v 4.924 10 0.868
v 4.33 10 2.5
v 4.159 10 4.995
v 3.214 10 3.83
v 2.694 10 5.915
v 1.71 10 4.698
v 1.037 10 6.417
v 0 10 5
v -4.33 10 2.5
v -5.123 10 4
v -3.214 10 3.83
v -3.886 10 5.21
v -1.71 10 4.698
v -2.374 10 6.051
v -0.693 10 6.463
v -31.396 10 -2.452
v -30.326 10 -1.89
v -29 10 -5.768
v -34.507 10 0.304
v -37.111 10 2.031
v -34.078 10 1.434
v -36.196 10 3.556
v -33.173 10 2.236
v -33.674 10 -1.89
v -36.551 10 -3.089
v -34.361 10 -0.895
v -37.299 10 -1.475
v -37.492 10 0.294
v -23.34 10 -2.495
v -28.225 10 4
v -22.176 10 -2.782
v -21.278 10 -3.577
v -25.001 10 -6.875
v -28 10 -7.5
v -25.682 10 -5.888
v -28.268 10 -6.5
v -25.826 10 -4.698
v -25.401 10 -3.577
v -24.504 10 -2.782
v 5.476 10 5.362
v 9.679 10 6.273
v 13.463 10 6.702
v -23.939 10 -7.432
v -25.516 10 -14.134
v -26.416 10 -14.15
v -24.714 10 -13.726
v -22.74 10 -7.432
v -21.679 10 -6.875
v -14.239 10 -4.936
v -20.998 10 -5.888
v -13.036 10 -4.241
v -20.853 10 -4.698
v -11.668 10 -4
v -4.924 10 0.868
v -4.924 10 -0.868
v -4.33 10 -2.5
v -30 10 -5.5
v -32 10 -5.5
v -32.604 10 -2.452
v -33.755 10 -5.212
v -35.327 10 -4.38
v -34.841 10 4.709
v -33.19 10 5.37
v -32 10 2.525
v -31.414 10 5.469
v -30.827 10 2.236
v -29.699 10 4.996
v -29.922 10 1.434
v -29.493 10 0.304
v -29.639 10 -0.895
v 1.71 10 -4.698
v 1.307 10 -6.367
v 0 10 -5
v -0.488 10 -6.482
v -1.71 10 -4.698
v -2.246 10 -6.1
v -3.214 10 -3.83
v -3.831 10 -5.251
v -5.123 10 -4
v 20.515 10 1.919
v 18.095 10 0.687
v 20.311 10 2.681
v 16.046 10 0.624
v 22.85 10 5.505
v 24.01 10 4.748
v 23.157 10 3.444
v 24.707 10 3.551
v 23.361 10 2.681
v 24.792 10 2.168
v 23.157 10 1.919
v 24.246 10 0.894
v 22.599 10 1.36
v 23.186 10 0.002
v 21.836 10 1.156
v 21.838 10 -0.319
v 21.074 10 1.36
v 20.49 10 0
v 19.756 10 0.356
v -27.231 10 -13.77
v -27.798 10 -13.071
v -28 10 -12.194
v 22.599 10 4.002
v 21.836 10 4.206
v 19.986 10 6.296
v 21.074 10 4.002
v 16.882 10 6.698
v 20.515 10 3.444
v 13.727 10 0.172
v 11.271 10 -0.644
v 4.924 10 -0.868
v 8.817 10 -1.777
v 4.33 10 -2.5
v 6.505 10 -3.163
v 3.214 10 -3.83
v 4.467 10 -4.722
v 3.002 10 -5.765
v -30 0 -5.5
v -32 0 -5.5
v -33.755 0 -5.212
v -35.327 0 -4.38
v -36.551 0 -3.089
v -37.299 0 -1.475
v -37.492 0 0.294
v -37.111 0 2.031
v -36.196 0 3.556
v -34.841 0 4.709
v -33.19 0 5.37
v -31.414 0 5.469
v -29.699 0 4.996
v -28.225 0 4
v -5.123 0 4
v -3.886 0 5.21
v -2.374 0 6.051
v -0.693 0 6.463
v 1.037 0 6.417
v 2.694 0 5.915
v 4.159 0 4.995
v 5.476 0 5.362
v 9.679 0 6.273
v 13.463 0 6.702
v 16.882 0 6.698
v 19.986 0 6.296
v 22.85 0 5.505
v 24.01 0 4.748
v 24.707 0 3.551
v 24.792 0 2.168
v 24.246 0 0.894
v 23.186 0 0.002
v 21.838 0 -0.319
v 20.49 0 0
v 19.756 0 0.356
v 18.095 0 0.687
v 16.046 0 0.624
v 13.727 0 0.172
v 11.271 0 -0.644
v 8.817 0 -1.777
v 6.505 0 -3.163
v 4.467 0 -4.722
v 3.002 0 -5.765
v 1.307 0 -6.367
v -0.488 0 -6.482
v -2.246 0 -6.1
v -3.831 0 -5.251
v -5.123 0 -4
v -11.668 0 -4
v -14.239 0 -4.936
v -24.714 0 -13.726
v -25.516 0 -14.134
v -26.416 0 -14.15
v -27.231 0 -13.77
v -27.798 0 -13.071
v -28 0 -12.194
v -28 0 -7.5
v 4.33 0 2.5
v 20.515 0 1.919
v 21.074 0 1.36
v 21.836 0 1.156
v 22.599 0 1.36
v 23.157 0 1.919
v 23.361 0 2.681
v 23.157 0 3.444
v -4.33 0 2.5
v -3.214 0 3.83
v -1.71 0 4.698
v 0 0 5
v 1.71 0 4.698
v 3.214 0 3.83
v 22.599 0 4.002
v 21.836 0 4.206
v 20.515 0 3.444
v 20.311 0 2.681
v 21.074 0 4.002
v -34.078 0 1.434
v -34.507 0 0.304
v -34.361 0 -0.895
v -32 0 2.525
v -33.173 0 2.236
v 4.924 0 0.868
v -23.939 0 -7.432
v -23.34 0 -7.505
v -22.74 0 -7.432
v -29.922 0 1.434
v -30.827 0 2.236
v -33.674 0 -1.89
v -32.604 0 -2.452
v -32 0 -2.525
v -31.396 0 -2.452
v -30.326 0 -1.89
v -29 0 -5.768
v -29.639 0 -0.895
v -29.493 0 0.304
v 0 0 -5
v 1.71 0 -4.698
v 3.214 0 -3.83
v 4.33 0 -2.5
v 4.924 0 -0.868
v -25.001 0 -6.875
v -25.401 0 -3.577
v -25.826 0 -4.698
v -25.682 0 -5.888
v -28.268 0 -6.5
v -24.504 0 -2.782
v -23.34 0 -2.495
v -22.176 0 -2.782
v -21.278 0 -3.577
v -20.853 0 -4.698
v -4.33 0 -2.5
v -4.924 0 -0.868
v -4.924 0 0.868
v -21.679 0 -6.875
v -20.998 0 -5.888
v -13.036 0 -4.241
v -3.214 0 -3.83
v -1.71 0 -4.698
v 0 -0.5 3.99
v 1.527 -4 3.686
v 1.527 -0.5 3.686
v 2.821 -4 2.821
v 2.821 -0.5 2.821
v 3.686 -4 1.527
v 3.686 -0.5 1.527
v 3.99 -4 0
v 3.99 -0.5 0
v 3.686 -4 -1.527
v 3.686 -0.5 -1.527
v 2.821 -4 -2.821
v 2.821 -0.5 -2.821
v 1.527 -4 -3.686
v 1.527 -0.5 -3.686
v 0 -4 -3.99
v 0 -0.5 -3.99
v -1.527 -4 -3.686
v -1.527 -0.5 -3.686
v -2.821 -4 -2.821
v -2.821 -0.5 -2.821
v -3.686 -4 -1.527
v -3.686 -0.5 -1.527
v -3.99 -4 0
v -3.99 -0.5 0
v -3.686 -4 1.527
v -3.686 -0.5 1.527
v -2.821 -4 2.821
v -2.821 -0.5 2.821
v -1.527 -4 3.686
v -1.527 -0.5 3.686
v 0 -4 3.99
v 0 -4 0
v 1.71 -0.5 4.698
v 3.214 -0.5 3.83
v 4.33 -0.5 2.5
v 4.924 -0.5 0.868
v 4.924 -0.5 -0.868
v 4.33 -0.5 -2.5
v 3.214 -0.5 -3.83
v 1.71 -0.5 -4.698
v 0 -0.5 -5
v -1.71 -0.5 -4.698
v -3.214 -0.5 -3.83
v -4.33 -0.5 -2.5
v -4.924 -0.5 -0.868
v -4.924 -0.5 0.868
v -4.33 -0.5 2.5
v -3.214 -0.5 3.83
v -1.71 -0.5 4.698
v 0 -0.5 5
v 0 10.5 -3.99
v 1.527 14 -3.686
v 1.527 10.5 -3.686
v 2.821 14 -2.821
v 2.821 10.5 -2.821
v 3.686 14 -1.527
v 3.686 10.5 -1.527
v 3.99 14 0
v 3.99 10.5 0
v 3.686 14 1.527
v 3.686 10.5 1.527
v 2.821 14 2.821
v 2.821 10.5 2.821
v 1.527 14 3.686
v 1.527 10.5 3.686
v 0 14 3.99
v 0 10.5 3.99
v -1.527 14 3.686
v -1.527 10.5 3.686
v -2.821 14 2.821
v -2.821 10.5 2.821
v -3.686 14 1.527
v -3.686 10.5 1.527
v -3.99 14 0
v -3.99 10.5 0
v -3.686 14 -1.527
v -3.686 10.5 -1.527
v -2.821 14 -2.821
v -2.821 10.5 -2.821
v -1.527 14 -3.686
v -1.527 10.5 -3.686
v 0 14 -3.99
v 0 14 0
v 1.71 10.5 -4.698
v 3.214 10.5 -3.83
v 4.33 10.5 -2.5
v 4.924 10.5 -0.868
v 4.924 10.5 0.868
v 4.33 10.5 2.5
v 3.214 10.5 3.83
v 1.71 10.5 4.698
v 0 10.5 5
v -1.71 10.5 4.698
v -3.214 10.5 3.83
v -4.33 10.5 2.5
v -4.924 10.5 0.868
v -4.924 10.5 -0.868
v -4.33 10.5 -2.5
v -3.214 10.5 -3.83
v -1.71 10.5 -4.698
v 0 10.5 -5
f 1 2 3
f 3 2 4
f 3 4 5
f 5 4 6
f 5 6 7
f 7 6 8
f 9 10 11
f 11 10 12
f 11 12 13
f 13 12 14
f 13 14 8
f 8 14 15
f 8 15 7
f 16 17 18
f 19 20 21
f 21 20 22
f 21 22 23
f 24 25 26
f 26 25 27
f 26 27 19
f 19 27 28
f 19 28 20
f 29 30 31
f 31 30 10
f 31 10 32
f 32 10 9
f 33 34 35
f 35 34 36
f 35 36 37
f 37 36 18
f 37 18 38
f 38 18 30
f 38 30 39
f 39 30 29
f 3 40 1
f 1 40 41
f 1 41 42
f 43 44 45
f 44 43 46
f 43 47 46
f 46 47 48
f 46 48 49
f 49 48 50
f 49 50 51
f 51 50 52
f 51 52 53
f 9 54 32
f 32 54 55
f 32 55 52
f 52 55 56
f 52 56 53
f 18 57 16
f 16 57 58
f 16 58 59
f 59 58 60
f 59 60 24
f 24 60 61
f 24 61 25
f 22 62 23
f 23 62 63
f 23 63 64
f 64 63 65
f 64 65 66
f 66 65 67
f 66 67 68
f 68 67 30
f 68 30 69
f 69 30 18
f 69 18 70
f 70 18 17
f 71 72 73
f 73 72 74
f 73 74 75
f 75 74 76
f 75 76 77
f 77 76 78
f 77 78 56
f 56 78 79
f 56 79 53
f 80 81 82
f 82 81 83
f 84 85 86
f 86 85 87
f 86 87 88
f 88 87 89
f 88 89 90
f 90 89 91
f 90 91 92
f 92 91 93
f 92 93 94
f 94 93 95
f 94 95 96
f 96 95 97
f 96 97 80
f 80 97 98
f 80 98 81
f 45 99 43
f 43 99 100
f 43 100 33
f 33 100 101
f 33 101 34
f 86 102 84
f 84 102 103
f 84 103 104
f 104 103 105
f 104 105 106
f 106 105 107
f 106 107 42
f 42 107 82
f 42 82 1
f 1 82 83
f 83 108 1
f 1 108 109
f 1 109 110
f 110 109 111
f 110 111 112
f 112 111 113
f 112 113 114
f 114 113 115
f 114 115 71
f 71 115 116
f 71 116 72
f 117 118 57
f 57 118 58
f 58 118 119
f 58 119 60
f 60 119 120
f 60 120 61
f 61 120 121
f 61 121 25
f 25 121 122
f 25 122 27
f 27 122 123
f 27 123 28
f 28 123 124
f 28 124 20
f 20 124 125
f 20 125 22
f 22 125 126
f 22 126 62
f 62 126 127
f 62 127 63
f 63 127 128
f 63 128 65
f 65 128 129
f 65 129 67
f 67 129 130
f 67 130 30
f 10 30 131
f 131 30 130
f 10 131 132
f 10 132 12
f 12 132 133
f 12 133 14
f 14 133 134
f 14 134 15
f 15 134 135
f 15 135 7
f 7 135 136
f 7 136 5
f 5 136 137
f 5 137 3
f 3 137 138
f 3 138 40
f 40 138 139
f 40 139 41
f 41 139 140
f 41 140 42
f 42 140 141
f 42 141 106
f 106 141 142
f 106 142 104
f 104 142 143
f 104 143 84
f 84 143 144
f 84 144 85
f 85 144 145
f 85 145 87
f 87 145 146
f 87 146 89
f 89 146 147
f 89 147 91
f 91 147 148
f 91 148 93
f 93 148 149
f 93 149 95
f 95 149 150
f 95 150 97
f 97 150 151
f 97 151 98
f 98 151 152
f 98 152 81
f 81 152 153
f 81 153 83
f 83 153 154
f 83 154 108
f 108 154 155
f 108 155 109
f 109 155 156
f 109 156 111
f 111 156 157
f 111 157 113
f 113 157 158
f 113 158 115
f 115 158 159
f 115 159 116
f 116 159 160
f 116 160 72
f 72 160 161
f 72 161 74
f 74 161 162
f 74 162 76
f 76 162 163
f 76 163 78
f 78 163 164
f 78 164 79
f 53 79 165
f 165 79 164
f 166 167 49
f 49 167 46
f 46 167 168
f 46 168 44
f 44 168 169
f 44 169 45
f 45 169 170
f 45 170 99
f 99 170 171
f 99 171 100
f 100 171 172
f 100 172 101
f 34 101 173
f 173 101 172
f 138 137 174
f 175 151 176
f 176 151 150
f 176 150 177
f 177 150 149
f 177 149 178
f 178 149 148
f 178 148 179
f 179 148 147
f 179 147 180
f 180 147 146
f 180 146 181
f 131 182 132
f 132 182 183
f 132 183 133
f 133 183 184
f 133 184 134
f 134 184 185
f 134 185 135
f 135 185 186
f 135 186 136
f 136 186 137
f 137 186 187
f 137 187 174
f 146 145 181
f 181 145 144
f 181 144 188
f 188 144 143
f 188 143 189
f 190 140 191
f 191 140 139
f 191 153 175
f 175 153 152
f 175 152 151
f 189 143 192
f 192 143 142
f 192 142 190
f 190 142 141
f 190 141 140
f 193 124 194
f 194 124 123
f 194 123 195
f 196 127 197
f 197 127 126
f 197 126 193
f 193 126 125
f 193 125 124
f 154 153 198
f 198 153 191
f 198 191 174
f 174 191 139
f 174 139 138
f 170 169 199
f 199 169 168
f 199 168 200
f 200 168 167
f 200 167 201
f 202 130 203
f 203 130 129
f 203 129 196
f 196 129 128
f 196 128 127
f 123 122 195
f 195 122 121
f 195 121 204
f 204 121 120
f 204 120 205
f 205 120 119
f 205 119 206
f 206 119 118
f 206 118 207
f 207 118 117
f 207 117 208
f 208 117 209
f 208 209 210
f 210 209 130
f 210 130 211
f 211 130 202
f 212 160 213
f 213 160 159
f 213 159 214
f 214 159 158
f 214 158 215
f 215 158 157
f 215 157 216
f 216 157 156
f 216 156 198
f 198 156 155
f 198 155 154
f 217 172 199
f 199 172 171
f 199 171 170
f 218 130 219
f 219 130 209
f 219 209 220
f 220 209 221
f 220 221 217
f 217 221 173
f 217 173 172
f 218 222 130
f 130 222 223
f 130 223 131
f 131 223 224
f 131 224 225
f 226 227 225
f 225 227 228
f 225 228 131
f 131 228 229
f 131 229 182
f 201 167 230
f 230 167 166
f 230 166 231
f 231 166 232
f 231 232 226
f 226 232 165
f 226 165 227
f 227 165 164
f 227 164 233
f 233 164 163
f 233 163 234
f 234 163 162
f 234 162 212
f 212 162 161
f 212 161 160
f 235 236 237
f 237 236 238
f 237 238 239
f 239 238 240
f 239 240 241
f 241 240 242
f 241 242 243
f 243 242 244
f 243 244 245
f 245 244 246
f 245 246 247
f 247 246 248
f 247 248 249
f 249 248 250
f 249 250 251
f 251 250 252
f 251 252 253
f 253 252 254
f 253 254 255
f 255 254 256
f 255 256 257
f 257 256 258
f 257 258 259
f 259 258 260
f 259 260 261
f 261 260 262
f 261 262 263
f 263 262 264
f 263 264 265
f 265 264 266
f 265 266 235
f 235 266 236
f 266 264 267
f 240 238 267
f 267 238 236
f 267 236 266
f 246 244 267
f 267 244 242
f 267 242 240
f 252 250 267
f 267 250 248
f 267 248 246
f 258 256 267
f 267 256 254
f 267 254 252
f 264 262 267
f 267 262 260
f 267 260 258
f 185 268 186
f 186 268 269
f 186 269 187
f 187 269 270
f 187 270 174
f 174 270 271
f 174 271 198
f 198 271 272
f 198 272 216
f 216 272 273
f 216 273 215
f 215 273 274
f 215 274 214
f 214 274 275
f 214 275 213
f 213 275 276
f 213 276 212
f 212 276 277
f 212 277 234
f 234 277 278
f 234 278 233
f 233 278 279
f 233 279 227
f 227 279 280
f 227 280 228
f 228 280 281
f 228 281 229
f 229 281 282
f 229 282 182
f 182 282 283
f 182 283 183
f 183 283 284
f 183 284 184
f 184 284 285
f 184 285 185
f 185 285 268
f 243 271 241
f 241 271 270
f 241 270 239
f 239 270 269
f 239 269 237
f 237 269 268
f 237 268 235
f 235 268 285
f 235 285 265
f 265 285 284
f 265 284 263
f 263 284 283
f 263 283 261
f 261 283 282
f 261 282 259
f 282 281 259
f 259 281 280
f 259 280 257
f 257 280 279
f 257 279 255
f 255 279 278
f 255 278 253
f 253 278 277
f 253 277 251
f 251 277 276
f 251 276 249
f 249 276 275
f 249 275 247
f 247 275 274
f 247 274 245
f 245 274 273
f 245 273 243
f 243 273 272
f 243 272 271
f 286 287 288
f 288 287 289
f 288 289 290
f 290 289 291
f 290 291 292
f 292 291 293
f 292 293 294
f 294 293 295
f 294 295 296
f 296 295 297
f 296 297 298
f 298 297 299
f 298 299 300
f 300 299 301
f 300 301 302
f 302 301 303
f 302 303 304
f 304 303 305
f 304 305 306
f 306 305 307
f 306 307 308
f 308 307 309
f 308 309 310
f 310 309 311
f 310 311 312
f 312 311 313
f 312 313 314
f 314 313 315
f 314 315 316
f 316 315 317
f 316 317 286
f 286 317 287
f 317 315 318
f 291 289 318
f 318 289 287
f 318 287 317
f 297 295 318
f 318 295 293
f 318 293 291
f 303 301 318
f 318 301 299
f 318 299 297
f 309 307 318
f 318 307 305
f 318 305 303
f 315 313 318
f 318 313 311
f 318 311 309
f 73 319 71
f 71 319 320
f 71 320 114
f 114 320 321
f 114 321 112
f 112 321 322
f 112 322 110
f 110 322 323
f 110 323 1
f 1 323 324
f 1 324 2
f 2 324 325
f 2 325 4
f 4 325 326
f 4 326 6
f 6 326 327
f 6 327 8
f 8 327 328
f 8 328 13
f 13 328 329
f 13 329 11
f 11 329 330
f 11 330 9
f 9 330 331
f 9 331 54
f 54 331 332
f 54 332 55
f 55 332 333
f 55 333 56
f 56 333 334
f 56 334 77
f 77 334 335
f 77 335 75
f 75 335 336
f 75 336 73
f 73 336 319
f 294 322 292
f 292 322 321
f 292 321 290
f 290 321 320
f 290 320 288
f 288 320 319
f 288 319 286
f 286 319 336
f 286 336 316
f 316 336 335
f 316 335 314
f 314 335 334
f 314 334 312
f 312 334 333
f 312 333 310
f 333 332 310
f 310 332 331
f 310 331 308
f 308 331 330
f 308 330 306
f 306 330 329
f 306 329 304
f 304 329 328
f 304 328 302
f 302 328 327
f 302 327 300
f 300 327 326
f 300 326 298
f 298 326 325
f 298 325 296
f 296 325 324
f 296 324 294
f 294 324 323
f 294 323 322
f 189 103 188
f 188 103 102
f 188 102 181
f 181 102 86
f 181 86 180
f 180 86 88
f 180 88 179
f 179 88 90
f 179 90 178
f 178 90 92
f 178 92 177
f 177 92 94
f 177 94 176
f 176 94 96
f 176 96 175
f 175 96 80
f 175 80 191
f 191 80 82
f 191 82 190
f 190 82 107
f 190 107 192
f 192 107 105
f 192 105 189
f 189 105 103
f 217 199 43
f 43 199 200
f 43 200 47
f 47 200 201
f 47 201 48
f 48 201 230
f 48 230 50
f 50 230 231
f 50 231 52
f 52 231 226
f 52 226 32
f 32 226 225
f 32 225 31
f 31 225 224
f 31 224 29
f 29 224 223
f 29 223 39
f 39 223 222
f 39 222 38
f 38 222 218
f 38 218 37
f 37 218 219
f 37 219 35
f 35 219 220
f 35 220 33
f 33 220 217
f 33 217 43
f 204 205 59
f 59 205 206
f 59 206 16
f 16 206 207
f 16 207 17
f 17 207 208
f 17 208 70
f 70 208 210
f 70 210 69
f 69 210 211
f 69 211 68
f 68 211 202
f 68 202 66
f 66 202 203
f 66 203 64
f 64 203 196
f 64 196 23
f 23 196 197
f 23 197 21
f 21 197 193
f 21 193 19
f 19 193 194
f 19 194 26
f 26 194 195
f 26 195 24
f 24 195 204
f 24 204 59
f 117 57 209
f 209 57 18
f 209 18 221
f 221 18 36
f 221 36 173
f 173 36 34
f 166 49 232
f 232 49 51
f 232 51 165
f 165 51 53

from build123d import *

# Parameters (mm, degrees)
EXTRUDE_1_DEPTH     = 10
HOLE_WIZARD_1_D     = 3.05
HOLE_WIZARD_1_DEPTH = 14
HOLE_WIZARD_2_D     = 5.01
HOLE_WIZARD_2_DEPTH = 14
HOLE_WIZARD_3_D     = 5.05
HOLE_WIZARD_3_DEPTH = 14
FILLET_1_R          = 2
FILLET_2_R          = 4


with BuildPart() as part:
    # 草图1 → 凸台-拉伸1 (new body)
    with BuildSketch(Plane.XZ):
        with BuildLine():
            Line((-28, -5.5), (-28, -12.193872478))
            ThreePointArc((-28, -12.193872478), (-26.845236523, -14.006488052), (-24.714424781, -13.725961365))
            Line((-24.714424781, -13.725961365), (-13.123475383, -4))
            Line((-13.123475383, -4), (-5.123475383, -4))
            ThreePointArc((-5.123475383, -4), (-0.488094847, -6.481648202), (4.466659496, -4.722176717))
            add(Edge.make_bspline(
                [(20.490071148, 0), (14.378134184, 3.89268165), (4.466659496, -4.722176717)],
                knots=[0.252803303, 0.252803303, 0.252803303, 2.064431363, 2.064431363, 2.064431363], degree=2, weights=[1, 0.617045201, 1]))
            ThreePointArc((20.490071148, 0), (24.593372298, 1.499185377), (22.849655998, 5.50469291))
            add(Edge.make_bspline(
                [(4.159420521, 4.994919512), (11.553776754, 7.153354998), (17.783855246, 7.323279465), (22.849655998, 5.50469291)],
                knots=[0, 0, 0, 0, 1, 1, 1, 1], degree=3))
            ThreePointArc((4.159420521, 4.994919512), (-0.692687991, 6.462985637), (-5.123475383, 4))
            Line((-5.123475383, 4), (-28.225082782, 4))
            ThreePointArc((-28.225082782, 4), (-37.111262075, 2.031009601), (-32, -5.5))
            Line((-32, -5.5), (-28, -5.5))
        make_face()
    extrude(amount=-EXTRUDE_1_DEPTH)

    # 草图2 → 旋转1 (revolve)
    with BuildSketch(Plane(origin=(0, 0, 0), x_dir=(-1, 0, 0), z_dir=(0, 0, -1)), mode=Mode.PRIVATE) as revolve_1_sk:
        Polygon((-3.99, -4), (0, -4), (0, 0), (-5, 0), (-5, -0.5), (-3.99, -0.5), align=None)
    revolve(revolve_1_sk.sketch.rotate(Axis((0, -4, 0), (0, 1, 0)), 270), axis=Axis((0, -4, 0), (0, 1, 0)))

    # 草图3 → 旋转2 (revolve)
    with BuildSketch(Plane.XY, mode=Mode.PRIVATE) as revolve_2_sk:
        Polygon((3.99, 14), (0, 14), (0, 10), (5, 10), (5, 10.5), (3.99, 10.5), align=None)
    revolve(revolve_2_sk.sketch.rotate(Axis((0, 14, 0), (0, -1, 0)), 270), axis=Axis((0, 14, 0), (0, -1, 0)))

    # 孔1
    with Locations(Plane(origin=(0, 10, 0), x_dir=(1, 0, 0), z_dir=(0, 1, 0))):
        with Locations((21.836015336, -2.681125555)):
            Hole(HOLE_WIZARD_1_D / 2, depth=HOLE_WIZARD_1_DEPTH)

    # 孔2
    with Locations(Plane(origin=(0, 10, 0), x_dir=(1, 0, 0), z_dir=(0, 1, 0))):
        with Locations((-23.339745962, 5)):
            Hole(HOLE_WIZARD_2_D / 2, depth=HOLE_WIZARD_2_DEPTH)

    # 孔3
    with Locations(Plane(origin=(0, 10, 0), x_dir=(1, 0, 0), z_dir=(0, 1, 0))):
        with Locations((-32, 0)):
            Hole(HOLE_WIZARD_3_D / 2, depth=HOLE_WIZARD_3_DEPTH)

    # 圆角1
    fillet_1_edges = [part.edges().sort_by_distance(p)[0] for p in [
        (-28, 5, -5.5),
    ]]
    fillet(fillet_1_edges, radius=FILLET_1_R)

    # 圆角2
    fillet_2_edges = [part.edges().sort_by_distance(p)[0] for p in [
        (-13.123475383, 5, -4),
    ]]
    fillet(fillet_2_edges, radius=FILLET_2_R)


solid = part.part
